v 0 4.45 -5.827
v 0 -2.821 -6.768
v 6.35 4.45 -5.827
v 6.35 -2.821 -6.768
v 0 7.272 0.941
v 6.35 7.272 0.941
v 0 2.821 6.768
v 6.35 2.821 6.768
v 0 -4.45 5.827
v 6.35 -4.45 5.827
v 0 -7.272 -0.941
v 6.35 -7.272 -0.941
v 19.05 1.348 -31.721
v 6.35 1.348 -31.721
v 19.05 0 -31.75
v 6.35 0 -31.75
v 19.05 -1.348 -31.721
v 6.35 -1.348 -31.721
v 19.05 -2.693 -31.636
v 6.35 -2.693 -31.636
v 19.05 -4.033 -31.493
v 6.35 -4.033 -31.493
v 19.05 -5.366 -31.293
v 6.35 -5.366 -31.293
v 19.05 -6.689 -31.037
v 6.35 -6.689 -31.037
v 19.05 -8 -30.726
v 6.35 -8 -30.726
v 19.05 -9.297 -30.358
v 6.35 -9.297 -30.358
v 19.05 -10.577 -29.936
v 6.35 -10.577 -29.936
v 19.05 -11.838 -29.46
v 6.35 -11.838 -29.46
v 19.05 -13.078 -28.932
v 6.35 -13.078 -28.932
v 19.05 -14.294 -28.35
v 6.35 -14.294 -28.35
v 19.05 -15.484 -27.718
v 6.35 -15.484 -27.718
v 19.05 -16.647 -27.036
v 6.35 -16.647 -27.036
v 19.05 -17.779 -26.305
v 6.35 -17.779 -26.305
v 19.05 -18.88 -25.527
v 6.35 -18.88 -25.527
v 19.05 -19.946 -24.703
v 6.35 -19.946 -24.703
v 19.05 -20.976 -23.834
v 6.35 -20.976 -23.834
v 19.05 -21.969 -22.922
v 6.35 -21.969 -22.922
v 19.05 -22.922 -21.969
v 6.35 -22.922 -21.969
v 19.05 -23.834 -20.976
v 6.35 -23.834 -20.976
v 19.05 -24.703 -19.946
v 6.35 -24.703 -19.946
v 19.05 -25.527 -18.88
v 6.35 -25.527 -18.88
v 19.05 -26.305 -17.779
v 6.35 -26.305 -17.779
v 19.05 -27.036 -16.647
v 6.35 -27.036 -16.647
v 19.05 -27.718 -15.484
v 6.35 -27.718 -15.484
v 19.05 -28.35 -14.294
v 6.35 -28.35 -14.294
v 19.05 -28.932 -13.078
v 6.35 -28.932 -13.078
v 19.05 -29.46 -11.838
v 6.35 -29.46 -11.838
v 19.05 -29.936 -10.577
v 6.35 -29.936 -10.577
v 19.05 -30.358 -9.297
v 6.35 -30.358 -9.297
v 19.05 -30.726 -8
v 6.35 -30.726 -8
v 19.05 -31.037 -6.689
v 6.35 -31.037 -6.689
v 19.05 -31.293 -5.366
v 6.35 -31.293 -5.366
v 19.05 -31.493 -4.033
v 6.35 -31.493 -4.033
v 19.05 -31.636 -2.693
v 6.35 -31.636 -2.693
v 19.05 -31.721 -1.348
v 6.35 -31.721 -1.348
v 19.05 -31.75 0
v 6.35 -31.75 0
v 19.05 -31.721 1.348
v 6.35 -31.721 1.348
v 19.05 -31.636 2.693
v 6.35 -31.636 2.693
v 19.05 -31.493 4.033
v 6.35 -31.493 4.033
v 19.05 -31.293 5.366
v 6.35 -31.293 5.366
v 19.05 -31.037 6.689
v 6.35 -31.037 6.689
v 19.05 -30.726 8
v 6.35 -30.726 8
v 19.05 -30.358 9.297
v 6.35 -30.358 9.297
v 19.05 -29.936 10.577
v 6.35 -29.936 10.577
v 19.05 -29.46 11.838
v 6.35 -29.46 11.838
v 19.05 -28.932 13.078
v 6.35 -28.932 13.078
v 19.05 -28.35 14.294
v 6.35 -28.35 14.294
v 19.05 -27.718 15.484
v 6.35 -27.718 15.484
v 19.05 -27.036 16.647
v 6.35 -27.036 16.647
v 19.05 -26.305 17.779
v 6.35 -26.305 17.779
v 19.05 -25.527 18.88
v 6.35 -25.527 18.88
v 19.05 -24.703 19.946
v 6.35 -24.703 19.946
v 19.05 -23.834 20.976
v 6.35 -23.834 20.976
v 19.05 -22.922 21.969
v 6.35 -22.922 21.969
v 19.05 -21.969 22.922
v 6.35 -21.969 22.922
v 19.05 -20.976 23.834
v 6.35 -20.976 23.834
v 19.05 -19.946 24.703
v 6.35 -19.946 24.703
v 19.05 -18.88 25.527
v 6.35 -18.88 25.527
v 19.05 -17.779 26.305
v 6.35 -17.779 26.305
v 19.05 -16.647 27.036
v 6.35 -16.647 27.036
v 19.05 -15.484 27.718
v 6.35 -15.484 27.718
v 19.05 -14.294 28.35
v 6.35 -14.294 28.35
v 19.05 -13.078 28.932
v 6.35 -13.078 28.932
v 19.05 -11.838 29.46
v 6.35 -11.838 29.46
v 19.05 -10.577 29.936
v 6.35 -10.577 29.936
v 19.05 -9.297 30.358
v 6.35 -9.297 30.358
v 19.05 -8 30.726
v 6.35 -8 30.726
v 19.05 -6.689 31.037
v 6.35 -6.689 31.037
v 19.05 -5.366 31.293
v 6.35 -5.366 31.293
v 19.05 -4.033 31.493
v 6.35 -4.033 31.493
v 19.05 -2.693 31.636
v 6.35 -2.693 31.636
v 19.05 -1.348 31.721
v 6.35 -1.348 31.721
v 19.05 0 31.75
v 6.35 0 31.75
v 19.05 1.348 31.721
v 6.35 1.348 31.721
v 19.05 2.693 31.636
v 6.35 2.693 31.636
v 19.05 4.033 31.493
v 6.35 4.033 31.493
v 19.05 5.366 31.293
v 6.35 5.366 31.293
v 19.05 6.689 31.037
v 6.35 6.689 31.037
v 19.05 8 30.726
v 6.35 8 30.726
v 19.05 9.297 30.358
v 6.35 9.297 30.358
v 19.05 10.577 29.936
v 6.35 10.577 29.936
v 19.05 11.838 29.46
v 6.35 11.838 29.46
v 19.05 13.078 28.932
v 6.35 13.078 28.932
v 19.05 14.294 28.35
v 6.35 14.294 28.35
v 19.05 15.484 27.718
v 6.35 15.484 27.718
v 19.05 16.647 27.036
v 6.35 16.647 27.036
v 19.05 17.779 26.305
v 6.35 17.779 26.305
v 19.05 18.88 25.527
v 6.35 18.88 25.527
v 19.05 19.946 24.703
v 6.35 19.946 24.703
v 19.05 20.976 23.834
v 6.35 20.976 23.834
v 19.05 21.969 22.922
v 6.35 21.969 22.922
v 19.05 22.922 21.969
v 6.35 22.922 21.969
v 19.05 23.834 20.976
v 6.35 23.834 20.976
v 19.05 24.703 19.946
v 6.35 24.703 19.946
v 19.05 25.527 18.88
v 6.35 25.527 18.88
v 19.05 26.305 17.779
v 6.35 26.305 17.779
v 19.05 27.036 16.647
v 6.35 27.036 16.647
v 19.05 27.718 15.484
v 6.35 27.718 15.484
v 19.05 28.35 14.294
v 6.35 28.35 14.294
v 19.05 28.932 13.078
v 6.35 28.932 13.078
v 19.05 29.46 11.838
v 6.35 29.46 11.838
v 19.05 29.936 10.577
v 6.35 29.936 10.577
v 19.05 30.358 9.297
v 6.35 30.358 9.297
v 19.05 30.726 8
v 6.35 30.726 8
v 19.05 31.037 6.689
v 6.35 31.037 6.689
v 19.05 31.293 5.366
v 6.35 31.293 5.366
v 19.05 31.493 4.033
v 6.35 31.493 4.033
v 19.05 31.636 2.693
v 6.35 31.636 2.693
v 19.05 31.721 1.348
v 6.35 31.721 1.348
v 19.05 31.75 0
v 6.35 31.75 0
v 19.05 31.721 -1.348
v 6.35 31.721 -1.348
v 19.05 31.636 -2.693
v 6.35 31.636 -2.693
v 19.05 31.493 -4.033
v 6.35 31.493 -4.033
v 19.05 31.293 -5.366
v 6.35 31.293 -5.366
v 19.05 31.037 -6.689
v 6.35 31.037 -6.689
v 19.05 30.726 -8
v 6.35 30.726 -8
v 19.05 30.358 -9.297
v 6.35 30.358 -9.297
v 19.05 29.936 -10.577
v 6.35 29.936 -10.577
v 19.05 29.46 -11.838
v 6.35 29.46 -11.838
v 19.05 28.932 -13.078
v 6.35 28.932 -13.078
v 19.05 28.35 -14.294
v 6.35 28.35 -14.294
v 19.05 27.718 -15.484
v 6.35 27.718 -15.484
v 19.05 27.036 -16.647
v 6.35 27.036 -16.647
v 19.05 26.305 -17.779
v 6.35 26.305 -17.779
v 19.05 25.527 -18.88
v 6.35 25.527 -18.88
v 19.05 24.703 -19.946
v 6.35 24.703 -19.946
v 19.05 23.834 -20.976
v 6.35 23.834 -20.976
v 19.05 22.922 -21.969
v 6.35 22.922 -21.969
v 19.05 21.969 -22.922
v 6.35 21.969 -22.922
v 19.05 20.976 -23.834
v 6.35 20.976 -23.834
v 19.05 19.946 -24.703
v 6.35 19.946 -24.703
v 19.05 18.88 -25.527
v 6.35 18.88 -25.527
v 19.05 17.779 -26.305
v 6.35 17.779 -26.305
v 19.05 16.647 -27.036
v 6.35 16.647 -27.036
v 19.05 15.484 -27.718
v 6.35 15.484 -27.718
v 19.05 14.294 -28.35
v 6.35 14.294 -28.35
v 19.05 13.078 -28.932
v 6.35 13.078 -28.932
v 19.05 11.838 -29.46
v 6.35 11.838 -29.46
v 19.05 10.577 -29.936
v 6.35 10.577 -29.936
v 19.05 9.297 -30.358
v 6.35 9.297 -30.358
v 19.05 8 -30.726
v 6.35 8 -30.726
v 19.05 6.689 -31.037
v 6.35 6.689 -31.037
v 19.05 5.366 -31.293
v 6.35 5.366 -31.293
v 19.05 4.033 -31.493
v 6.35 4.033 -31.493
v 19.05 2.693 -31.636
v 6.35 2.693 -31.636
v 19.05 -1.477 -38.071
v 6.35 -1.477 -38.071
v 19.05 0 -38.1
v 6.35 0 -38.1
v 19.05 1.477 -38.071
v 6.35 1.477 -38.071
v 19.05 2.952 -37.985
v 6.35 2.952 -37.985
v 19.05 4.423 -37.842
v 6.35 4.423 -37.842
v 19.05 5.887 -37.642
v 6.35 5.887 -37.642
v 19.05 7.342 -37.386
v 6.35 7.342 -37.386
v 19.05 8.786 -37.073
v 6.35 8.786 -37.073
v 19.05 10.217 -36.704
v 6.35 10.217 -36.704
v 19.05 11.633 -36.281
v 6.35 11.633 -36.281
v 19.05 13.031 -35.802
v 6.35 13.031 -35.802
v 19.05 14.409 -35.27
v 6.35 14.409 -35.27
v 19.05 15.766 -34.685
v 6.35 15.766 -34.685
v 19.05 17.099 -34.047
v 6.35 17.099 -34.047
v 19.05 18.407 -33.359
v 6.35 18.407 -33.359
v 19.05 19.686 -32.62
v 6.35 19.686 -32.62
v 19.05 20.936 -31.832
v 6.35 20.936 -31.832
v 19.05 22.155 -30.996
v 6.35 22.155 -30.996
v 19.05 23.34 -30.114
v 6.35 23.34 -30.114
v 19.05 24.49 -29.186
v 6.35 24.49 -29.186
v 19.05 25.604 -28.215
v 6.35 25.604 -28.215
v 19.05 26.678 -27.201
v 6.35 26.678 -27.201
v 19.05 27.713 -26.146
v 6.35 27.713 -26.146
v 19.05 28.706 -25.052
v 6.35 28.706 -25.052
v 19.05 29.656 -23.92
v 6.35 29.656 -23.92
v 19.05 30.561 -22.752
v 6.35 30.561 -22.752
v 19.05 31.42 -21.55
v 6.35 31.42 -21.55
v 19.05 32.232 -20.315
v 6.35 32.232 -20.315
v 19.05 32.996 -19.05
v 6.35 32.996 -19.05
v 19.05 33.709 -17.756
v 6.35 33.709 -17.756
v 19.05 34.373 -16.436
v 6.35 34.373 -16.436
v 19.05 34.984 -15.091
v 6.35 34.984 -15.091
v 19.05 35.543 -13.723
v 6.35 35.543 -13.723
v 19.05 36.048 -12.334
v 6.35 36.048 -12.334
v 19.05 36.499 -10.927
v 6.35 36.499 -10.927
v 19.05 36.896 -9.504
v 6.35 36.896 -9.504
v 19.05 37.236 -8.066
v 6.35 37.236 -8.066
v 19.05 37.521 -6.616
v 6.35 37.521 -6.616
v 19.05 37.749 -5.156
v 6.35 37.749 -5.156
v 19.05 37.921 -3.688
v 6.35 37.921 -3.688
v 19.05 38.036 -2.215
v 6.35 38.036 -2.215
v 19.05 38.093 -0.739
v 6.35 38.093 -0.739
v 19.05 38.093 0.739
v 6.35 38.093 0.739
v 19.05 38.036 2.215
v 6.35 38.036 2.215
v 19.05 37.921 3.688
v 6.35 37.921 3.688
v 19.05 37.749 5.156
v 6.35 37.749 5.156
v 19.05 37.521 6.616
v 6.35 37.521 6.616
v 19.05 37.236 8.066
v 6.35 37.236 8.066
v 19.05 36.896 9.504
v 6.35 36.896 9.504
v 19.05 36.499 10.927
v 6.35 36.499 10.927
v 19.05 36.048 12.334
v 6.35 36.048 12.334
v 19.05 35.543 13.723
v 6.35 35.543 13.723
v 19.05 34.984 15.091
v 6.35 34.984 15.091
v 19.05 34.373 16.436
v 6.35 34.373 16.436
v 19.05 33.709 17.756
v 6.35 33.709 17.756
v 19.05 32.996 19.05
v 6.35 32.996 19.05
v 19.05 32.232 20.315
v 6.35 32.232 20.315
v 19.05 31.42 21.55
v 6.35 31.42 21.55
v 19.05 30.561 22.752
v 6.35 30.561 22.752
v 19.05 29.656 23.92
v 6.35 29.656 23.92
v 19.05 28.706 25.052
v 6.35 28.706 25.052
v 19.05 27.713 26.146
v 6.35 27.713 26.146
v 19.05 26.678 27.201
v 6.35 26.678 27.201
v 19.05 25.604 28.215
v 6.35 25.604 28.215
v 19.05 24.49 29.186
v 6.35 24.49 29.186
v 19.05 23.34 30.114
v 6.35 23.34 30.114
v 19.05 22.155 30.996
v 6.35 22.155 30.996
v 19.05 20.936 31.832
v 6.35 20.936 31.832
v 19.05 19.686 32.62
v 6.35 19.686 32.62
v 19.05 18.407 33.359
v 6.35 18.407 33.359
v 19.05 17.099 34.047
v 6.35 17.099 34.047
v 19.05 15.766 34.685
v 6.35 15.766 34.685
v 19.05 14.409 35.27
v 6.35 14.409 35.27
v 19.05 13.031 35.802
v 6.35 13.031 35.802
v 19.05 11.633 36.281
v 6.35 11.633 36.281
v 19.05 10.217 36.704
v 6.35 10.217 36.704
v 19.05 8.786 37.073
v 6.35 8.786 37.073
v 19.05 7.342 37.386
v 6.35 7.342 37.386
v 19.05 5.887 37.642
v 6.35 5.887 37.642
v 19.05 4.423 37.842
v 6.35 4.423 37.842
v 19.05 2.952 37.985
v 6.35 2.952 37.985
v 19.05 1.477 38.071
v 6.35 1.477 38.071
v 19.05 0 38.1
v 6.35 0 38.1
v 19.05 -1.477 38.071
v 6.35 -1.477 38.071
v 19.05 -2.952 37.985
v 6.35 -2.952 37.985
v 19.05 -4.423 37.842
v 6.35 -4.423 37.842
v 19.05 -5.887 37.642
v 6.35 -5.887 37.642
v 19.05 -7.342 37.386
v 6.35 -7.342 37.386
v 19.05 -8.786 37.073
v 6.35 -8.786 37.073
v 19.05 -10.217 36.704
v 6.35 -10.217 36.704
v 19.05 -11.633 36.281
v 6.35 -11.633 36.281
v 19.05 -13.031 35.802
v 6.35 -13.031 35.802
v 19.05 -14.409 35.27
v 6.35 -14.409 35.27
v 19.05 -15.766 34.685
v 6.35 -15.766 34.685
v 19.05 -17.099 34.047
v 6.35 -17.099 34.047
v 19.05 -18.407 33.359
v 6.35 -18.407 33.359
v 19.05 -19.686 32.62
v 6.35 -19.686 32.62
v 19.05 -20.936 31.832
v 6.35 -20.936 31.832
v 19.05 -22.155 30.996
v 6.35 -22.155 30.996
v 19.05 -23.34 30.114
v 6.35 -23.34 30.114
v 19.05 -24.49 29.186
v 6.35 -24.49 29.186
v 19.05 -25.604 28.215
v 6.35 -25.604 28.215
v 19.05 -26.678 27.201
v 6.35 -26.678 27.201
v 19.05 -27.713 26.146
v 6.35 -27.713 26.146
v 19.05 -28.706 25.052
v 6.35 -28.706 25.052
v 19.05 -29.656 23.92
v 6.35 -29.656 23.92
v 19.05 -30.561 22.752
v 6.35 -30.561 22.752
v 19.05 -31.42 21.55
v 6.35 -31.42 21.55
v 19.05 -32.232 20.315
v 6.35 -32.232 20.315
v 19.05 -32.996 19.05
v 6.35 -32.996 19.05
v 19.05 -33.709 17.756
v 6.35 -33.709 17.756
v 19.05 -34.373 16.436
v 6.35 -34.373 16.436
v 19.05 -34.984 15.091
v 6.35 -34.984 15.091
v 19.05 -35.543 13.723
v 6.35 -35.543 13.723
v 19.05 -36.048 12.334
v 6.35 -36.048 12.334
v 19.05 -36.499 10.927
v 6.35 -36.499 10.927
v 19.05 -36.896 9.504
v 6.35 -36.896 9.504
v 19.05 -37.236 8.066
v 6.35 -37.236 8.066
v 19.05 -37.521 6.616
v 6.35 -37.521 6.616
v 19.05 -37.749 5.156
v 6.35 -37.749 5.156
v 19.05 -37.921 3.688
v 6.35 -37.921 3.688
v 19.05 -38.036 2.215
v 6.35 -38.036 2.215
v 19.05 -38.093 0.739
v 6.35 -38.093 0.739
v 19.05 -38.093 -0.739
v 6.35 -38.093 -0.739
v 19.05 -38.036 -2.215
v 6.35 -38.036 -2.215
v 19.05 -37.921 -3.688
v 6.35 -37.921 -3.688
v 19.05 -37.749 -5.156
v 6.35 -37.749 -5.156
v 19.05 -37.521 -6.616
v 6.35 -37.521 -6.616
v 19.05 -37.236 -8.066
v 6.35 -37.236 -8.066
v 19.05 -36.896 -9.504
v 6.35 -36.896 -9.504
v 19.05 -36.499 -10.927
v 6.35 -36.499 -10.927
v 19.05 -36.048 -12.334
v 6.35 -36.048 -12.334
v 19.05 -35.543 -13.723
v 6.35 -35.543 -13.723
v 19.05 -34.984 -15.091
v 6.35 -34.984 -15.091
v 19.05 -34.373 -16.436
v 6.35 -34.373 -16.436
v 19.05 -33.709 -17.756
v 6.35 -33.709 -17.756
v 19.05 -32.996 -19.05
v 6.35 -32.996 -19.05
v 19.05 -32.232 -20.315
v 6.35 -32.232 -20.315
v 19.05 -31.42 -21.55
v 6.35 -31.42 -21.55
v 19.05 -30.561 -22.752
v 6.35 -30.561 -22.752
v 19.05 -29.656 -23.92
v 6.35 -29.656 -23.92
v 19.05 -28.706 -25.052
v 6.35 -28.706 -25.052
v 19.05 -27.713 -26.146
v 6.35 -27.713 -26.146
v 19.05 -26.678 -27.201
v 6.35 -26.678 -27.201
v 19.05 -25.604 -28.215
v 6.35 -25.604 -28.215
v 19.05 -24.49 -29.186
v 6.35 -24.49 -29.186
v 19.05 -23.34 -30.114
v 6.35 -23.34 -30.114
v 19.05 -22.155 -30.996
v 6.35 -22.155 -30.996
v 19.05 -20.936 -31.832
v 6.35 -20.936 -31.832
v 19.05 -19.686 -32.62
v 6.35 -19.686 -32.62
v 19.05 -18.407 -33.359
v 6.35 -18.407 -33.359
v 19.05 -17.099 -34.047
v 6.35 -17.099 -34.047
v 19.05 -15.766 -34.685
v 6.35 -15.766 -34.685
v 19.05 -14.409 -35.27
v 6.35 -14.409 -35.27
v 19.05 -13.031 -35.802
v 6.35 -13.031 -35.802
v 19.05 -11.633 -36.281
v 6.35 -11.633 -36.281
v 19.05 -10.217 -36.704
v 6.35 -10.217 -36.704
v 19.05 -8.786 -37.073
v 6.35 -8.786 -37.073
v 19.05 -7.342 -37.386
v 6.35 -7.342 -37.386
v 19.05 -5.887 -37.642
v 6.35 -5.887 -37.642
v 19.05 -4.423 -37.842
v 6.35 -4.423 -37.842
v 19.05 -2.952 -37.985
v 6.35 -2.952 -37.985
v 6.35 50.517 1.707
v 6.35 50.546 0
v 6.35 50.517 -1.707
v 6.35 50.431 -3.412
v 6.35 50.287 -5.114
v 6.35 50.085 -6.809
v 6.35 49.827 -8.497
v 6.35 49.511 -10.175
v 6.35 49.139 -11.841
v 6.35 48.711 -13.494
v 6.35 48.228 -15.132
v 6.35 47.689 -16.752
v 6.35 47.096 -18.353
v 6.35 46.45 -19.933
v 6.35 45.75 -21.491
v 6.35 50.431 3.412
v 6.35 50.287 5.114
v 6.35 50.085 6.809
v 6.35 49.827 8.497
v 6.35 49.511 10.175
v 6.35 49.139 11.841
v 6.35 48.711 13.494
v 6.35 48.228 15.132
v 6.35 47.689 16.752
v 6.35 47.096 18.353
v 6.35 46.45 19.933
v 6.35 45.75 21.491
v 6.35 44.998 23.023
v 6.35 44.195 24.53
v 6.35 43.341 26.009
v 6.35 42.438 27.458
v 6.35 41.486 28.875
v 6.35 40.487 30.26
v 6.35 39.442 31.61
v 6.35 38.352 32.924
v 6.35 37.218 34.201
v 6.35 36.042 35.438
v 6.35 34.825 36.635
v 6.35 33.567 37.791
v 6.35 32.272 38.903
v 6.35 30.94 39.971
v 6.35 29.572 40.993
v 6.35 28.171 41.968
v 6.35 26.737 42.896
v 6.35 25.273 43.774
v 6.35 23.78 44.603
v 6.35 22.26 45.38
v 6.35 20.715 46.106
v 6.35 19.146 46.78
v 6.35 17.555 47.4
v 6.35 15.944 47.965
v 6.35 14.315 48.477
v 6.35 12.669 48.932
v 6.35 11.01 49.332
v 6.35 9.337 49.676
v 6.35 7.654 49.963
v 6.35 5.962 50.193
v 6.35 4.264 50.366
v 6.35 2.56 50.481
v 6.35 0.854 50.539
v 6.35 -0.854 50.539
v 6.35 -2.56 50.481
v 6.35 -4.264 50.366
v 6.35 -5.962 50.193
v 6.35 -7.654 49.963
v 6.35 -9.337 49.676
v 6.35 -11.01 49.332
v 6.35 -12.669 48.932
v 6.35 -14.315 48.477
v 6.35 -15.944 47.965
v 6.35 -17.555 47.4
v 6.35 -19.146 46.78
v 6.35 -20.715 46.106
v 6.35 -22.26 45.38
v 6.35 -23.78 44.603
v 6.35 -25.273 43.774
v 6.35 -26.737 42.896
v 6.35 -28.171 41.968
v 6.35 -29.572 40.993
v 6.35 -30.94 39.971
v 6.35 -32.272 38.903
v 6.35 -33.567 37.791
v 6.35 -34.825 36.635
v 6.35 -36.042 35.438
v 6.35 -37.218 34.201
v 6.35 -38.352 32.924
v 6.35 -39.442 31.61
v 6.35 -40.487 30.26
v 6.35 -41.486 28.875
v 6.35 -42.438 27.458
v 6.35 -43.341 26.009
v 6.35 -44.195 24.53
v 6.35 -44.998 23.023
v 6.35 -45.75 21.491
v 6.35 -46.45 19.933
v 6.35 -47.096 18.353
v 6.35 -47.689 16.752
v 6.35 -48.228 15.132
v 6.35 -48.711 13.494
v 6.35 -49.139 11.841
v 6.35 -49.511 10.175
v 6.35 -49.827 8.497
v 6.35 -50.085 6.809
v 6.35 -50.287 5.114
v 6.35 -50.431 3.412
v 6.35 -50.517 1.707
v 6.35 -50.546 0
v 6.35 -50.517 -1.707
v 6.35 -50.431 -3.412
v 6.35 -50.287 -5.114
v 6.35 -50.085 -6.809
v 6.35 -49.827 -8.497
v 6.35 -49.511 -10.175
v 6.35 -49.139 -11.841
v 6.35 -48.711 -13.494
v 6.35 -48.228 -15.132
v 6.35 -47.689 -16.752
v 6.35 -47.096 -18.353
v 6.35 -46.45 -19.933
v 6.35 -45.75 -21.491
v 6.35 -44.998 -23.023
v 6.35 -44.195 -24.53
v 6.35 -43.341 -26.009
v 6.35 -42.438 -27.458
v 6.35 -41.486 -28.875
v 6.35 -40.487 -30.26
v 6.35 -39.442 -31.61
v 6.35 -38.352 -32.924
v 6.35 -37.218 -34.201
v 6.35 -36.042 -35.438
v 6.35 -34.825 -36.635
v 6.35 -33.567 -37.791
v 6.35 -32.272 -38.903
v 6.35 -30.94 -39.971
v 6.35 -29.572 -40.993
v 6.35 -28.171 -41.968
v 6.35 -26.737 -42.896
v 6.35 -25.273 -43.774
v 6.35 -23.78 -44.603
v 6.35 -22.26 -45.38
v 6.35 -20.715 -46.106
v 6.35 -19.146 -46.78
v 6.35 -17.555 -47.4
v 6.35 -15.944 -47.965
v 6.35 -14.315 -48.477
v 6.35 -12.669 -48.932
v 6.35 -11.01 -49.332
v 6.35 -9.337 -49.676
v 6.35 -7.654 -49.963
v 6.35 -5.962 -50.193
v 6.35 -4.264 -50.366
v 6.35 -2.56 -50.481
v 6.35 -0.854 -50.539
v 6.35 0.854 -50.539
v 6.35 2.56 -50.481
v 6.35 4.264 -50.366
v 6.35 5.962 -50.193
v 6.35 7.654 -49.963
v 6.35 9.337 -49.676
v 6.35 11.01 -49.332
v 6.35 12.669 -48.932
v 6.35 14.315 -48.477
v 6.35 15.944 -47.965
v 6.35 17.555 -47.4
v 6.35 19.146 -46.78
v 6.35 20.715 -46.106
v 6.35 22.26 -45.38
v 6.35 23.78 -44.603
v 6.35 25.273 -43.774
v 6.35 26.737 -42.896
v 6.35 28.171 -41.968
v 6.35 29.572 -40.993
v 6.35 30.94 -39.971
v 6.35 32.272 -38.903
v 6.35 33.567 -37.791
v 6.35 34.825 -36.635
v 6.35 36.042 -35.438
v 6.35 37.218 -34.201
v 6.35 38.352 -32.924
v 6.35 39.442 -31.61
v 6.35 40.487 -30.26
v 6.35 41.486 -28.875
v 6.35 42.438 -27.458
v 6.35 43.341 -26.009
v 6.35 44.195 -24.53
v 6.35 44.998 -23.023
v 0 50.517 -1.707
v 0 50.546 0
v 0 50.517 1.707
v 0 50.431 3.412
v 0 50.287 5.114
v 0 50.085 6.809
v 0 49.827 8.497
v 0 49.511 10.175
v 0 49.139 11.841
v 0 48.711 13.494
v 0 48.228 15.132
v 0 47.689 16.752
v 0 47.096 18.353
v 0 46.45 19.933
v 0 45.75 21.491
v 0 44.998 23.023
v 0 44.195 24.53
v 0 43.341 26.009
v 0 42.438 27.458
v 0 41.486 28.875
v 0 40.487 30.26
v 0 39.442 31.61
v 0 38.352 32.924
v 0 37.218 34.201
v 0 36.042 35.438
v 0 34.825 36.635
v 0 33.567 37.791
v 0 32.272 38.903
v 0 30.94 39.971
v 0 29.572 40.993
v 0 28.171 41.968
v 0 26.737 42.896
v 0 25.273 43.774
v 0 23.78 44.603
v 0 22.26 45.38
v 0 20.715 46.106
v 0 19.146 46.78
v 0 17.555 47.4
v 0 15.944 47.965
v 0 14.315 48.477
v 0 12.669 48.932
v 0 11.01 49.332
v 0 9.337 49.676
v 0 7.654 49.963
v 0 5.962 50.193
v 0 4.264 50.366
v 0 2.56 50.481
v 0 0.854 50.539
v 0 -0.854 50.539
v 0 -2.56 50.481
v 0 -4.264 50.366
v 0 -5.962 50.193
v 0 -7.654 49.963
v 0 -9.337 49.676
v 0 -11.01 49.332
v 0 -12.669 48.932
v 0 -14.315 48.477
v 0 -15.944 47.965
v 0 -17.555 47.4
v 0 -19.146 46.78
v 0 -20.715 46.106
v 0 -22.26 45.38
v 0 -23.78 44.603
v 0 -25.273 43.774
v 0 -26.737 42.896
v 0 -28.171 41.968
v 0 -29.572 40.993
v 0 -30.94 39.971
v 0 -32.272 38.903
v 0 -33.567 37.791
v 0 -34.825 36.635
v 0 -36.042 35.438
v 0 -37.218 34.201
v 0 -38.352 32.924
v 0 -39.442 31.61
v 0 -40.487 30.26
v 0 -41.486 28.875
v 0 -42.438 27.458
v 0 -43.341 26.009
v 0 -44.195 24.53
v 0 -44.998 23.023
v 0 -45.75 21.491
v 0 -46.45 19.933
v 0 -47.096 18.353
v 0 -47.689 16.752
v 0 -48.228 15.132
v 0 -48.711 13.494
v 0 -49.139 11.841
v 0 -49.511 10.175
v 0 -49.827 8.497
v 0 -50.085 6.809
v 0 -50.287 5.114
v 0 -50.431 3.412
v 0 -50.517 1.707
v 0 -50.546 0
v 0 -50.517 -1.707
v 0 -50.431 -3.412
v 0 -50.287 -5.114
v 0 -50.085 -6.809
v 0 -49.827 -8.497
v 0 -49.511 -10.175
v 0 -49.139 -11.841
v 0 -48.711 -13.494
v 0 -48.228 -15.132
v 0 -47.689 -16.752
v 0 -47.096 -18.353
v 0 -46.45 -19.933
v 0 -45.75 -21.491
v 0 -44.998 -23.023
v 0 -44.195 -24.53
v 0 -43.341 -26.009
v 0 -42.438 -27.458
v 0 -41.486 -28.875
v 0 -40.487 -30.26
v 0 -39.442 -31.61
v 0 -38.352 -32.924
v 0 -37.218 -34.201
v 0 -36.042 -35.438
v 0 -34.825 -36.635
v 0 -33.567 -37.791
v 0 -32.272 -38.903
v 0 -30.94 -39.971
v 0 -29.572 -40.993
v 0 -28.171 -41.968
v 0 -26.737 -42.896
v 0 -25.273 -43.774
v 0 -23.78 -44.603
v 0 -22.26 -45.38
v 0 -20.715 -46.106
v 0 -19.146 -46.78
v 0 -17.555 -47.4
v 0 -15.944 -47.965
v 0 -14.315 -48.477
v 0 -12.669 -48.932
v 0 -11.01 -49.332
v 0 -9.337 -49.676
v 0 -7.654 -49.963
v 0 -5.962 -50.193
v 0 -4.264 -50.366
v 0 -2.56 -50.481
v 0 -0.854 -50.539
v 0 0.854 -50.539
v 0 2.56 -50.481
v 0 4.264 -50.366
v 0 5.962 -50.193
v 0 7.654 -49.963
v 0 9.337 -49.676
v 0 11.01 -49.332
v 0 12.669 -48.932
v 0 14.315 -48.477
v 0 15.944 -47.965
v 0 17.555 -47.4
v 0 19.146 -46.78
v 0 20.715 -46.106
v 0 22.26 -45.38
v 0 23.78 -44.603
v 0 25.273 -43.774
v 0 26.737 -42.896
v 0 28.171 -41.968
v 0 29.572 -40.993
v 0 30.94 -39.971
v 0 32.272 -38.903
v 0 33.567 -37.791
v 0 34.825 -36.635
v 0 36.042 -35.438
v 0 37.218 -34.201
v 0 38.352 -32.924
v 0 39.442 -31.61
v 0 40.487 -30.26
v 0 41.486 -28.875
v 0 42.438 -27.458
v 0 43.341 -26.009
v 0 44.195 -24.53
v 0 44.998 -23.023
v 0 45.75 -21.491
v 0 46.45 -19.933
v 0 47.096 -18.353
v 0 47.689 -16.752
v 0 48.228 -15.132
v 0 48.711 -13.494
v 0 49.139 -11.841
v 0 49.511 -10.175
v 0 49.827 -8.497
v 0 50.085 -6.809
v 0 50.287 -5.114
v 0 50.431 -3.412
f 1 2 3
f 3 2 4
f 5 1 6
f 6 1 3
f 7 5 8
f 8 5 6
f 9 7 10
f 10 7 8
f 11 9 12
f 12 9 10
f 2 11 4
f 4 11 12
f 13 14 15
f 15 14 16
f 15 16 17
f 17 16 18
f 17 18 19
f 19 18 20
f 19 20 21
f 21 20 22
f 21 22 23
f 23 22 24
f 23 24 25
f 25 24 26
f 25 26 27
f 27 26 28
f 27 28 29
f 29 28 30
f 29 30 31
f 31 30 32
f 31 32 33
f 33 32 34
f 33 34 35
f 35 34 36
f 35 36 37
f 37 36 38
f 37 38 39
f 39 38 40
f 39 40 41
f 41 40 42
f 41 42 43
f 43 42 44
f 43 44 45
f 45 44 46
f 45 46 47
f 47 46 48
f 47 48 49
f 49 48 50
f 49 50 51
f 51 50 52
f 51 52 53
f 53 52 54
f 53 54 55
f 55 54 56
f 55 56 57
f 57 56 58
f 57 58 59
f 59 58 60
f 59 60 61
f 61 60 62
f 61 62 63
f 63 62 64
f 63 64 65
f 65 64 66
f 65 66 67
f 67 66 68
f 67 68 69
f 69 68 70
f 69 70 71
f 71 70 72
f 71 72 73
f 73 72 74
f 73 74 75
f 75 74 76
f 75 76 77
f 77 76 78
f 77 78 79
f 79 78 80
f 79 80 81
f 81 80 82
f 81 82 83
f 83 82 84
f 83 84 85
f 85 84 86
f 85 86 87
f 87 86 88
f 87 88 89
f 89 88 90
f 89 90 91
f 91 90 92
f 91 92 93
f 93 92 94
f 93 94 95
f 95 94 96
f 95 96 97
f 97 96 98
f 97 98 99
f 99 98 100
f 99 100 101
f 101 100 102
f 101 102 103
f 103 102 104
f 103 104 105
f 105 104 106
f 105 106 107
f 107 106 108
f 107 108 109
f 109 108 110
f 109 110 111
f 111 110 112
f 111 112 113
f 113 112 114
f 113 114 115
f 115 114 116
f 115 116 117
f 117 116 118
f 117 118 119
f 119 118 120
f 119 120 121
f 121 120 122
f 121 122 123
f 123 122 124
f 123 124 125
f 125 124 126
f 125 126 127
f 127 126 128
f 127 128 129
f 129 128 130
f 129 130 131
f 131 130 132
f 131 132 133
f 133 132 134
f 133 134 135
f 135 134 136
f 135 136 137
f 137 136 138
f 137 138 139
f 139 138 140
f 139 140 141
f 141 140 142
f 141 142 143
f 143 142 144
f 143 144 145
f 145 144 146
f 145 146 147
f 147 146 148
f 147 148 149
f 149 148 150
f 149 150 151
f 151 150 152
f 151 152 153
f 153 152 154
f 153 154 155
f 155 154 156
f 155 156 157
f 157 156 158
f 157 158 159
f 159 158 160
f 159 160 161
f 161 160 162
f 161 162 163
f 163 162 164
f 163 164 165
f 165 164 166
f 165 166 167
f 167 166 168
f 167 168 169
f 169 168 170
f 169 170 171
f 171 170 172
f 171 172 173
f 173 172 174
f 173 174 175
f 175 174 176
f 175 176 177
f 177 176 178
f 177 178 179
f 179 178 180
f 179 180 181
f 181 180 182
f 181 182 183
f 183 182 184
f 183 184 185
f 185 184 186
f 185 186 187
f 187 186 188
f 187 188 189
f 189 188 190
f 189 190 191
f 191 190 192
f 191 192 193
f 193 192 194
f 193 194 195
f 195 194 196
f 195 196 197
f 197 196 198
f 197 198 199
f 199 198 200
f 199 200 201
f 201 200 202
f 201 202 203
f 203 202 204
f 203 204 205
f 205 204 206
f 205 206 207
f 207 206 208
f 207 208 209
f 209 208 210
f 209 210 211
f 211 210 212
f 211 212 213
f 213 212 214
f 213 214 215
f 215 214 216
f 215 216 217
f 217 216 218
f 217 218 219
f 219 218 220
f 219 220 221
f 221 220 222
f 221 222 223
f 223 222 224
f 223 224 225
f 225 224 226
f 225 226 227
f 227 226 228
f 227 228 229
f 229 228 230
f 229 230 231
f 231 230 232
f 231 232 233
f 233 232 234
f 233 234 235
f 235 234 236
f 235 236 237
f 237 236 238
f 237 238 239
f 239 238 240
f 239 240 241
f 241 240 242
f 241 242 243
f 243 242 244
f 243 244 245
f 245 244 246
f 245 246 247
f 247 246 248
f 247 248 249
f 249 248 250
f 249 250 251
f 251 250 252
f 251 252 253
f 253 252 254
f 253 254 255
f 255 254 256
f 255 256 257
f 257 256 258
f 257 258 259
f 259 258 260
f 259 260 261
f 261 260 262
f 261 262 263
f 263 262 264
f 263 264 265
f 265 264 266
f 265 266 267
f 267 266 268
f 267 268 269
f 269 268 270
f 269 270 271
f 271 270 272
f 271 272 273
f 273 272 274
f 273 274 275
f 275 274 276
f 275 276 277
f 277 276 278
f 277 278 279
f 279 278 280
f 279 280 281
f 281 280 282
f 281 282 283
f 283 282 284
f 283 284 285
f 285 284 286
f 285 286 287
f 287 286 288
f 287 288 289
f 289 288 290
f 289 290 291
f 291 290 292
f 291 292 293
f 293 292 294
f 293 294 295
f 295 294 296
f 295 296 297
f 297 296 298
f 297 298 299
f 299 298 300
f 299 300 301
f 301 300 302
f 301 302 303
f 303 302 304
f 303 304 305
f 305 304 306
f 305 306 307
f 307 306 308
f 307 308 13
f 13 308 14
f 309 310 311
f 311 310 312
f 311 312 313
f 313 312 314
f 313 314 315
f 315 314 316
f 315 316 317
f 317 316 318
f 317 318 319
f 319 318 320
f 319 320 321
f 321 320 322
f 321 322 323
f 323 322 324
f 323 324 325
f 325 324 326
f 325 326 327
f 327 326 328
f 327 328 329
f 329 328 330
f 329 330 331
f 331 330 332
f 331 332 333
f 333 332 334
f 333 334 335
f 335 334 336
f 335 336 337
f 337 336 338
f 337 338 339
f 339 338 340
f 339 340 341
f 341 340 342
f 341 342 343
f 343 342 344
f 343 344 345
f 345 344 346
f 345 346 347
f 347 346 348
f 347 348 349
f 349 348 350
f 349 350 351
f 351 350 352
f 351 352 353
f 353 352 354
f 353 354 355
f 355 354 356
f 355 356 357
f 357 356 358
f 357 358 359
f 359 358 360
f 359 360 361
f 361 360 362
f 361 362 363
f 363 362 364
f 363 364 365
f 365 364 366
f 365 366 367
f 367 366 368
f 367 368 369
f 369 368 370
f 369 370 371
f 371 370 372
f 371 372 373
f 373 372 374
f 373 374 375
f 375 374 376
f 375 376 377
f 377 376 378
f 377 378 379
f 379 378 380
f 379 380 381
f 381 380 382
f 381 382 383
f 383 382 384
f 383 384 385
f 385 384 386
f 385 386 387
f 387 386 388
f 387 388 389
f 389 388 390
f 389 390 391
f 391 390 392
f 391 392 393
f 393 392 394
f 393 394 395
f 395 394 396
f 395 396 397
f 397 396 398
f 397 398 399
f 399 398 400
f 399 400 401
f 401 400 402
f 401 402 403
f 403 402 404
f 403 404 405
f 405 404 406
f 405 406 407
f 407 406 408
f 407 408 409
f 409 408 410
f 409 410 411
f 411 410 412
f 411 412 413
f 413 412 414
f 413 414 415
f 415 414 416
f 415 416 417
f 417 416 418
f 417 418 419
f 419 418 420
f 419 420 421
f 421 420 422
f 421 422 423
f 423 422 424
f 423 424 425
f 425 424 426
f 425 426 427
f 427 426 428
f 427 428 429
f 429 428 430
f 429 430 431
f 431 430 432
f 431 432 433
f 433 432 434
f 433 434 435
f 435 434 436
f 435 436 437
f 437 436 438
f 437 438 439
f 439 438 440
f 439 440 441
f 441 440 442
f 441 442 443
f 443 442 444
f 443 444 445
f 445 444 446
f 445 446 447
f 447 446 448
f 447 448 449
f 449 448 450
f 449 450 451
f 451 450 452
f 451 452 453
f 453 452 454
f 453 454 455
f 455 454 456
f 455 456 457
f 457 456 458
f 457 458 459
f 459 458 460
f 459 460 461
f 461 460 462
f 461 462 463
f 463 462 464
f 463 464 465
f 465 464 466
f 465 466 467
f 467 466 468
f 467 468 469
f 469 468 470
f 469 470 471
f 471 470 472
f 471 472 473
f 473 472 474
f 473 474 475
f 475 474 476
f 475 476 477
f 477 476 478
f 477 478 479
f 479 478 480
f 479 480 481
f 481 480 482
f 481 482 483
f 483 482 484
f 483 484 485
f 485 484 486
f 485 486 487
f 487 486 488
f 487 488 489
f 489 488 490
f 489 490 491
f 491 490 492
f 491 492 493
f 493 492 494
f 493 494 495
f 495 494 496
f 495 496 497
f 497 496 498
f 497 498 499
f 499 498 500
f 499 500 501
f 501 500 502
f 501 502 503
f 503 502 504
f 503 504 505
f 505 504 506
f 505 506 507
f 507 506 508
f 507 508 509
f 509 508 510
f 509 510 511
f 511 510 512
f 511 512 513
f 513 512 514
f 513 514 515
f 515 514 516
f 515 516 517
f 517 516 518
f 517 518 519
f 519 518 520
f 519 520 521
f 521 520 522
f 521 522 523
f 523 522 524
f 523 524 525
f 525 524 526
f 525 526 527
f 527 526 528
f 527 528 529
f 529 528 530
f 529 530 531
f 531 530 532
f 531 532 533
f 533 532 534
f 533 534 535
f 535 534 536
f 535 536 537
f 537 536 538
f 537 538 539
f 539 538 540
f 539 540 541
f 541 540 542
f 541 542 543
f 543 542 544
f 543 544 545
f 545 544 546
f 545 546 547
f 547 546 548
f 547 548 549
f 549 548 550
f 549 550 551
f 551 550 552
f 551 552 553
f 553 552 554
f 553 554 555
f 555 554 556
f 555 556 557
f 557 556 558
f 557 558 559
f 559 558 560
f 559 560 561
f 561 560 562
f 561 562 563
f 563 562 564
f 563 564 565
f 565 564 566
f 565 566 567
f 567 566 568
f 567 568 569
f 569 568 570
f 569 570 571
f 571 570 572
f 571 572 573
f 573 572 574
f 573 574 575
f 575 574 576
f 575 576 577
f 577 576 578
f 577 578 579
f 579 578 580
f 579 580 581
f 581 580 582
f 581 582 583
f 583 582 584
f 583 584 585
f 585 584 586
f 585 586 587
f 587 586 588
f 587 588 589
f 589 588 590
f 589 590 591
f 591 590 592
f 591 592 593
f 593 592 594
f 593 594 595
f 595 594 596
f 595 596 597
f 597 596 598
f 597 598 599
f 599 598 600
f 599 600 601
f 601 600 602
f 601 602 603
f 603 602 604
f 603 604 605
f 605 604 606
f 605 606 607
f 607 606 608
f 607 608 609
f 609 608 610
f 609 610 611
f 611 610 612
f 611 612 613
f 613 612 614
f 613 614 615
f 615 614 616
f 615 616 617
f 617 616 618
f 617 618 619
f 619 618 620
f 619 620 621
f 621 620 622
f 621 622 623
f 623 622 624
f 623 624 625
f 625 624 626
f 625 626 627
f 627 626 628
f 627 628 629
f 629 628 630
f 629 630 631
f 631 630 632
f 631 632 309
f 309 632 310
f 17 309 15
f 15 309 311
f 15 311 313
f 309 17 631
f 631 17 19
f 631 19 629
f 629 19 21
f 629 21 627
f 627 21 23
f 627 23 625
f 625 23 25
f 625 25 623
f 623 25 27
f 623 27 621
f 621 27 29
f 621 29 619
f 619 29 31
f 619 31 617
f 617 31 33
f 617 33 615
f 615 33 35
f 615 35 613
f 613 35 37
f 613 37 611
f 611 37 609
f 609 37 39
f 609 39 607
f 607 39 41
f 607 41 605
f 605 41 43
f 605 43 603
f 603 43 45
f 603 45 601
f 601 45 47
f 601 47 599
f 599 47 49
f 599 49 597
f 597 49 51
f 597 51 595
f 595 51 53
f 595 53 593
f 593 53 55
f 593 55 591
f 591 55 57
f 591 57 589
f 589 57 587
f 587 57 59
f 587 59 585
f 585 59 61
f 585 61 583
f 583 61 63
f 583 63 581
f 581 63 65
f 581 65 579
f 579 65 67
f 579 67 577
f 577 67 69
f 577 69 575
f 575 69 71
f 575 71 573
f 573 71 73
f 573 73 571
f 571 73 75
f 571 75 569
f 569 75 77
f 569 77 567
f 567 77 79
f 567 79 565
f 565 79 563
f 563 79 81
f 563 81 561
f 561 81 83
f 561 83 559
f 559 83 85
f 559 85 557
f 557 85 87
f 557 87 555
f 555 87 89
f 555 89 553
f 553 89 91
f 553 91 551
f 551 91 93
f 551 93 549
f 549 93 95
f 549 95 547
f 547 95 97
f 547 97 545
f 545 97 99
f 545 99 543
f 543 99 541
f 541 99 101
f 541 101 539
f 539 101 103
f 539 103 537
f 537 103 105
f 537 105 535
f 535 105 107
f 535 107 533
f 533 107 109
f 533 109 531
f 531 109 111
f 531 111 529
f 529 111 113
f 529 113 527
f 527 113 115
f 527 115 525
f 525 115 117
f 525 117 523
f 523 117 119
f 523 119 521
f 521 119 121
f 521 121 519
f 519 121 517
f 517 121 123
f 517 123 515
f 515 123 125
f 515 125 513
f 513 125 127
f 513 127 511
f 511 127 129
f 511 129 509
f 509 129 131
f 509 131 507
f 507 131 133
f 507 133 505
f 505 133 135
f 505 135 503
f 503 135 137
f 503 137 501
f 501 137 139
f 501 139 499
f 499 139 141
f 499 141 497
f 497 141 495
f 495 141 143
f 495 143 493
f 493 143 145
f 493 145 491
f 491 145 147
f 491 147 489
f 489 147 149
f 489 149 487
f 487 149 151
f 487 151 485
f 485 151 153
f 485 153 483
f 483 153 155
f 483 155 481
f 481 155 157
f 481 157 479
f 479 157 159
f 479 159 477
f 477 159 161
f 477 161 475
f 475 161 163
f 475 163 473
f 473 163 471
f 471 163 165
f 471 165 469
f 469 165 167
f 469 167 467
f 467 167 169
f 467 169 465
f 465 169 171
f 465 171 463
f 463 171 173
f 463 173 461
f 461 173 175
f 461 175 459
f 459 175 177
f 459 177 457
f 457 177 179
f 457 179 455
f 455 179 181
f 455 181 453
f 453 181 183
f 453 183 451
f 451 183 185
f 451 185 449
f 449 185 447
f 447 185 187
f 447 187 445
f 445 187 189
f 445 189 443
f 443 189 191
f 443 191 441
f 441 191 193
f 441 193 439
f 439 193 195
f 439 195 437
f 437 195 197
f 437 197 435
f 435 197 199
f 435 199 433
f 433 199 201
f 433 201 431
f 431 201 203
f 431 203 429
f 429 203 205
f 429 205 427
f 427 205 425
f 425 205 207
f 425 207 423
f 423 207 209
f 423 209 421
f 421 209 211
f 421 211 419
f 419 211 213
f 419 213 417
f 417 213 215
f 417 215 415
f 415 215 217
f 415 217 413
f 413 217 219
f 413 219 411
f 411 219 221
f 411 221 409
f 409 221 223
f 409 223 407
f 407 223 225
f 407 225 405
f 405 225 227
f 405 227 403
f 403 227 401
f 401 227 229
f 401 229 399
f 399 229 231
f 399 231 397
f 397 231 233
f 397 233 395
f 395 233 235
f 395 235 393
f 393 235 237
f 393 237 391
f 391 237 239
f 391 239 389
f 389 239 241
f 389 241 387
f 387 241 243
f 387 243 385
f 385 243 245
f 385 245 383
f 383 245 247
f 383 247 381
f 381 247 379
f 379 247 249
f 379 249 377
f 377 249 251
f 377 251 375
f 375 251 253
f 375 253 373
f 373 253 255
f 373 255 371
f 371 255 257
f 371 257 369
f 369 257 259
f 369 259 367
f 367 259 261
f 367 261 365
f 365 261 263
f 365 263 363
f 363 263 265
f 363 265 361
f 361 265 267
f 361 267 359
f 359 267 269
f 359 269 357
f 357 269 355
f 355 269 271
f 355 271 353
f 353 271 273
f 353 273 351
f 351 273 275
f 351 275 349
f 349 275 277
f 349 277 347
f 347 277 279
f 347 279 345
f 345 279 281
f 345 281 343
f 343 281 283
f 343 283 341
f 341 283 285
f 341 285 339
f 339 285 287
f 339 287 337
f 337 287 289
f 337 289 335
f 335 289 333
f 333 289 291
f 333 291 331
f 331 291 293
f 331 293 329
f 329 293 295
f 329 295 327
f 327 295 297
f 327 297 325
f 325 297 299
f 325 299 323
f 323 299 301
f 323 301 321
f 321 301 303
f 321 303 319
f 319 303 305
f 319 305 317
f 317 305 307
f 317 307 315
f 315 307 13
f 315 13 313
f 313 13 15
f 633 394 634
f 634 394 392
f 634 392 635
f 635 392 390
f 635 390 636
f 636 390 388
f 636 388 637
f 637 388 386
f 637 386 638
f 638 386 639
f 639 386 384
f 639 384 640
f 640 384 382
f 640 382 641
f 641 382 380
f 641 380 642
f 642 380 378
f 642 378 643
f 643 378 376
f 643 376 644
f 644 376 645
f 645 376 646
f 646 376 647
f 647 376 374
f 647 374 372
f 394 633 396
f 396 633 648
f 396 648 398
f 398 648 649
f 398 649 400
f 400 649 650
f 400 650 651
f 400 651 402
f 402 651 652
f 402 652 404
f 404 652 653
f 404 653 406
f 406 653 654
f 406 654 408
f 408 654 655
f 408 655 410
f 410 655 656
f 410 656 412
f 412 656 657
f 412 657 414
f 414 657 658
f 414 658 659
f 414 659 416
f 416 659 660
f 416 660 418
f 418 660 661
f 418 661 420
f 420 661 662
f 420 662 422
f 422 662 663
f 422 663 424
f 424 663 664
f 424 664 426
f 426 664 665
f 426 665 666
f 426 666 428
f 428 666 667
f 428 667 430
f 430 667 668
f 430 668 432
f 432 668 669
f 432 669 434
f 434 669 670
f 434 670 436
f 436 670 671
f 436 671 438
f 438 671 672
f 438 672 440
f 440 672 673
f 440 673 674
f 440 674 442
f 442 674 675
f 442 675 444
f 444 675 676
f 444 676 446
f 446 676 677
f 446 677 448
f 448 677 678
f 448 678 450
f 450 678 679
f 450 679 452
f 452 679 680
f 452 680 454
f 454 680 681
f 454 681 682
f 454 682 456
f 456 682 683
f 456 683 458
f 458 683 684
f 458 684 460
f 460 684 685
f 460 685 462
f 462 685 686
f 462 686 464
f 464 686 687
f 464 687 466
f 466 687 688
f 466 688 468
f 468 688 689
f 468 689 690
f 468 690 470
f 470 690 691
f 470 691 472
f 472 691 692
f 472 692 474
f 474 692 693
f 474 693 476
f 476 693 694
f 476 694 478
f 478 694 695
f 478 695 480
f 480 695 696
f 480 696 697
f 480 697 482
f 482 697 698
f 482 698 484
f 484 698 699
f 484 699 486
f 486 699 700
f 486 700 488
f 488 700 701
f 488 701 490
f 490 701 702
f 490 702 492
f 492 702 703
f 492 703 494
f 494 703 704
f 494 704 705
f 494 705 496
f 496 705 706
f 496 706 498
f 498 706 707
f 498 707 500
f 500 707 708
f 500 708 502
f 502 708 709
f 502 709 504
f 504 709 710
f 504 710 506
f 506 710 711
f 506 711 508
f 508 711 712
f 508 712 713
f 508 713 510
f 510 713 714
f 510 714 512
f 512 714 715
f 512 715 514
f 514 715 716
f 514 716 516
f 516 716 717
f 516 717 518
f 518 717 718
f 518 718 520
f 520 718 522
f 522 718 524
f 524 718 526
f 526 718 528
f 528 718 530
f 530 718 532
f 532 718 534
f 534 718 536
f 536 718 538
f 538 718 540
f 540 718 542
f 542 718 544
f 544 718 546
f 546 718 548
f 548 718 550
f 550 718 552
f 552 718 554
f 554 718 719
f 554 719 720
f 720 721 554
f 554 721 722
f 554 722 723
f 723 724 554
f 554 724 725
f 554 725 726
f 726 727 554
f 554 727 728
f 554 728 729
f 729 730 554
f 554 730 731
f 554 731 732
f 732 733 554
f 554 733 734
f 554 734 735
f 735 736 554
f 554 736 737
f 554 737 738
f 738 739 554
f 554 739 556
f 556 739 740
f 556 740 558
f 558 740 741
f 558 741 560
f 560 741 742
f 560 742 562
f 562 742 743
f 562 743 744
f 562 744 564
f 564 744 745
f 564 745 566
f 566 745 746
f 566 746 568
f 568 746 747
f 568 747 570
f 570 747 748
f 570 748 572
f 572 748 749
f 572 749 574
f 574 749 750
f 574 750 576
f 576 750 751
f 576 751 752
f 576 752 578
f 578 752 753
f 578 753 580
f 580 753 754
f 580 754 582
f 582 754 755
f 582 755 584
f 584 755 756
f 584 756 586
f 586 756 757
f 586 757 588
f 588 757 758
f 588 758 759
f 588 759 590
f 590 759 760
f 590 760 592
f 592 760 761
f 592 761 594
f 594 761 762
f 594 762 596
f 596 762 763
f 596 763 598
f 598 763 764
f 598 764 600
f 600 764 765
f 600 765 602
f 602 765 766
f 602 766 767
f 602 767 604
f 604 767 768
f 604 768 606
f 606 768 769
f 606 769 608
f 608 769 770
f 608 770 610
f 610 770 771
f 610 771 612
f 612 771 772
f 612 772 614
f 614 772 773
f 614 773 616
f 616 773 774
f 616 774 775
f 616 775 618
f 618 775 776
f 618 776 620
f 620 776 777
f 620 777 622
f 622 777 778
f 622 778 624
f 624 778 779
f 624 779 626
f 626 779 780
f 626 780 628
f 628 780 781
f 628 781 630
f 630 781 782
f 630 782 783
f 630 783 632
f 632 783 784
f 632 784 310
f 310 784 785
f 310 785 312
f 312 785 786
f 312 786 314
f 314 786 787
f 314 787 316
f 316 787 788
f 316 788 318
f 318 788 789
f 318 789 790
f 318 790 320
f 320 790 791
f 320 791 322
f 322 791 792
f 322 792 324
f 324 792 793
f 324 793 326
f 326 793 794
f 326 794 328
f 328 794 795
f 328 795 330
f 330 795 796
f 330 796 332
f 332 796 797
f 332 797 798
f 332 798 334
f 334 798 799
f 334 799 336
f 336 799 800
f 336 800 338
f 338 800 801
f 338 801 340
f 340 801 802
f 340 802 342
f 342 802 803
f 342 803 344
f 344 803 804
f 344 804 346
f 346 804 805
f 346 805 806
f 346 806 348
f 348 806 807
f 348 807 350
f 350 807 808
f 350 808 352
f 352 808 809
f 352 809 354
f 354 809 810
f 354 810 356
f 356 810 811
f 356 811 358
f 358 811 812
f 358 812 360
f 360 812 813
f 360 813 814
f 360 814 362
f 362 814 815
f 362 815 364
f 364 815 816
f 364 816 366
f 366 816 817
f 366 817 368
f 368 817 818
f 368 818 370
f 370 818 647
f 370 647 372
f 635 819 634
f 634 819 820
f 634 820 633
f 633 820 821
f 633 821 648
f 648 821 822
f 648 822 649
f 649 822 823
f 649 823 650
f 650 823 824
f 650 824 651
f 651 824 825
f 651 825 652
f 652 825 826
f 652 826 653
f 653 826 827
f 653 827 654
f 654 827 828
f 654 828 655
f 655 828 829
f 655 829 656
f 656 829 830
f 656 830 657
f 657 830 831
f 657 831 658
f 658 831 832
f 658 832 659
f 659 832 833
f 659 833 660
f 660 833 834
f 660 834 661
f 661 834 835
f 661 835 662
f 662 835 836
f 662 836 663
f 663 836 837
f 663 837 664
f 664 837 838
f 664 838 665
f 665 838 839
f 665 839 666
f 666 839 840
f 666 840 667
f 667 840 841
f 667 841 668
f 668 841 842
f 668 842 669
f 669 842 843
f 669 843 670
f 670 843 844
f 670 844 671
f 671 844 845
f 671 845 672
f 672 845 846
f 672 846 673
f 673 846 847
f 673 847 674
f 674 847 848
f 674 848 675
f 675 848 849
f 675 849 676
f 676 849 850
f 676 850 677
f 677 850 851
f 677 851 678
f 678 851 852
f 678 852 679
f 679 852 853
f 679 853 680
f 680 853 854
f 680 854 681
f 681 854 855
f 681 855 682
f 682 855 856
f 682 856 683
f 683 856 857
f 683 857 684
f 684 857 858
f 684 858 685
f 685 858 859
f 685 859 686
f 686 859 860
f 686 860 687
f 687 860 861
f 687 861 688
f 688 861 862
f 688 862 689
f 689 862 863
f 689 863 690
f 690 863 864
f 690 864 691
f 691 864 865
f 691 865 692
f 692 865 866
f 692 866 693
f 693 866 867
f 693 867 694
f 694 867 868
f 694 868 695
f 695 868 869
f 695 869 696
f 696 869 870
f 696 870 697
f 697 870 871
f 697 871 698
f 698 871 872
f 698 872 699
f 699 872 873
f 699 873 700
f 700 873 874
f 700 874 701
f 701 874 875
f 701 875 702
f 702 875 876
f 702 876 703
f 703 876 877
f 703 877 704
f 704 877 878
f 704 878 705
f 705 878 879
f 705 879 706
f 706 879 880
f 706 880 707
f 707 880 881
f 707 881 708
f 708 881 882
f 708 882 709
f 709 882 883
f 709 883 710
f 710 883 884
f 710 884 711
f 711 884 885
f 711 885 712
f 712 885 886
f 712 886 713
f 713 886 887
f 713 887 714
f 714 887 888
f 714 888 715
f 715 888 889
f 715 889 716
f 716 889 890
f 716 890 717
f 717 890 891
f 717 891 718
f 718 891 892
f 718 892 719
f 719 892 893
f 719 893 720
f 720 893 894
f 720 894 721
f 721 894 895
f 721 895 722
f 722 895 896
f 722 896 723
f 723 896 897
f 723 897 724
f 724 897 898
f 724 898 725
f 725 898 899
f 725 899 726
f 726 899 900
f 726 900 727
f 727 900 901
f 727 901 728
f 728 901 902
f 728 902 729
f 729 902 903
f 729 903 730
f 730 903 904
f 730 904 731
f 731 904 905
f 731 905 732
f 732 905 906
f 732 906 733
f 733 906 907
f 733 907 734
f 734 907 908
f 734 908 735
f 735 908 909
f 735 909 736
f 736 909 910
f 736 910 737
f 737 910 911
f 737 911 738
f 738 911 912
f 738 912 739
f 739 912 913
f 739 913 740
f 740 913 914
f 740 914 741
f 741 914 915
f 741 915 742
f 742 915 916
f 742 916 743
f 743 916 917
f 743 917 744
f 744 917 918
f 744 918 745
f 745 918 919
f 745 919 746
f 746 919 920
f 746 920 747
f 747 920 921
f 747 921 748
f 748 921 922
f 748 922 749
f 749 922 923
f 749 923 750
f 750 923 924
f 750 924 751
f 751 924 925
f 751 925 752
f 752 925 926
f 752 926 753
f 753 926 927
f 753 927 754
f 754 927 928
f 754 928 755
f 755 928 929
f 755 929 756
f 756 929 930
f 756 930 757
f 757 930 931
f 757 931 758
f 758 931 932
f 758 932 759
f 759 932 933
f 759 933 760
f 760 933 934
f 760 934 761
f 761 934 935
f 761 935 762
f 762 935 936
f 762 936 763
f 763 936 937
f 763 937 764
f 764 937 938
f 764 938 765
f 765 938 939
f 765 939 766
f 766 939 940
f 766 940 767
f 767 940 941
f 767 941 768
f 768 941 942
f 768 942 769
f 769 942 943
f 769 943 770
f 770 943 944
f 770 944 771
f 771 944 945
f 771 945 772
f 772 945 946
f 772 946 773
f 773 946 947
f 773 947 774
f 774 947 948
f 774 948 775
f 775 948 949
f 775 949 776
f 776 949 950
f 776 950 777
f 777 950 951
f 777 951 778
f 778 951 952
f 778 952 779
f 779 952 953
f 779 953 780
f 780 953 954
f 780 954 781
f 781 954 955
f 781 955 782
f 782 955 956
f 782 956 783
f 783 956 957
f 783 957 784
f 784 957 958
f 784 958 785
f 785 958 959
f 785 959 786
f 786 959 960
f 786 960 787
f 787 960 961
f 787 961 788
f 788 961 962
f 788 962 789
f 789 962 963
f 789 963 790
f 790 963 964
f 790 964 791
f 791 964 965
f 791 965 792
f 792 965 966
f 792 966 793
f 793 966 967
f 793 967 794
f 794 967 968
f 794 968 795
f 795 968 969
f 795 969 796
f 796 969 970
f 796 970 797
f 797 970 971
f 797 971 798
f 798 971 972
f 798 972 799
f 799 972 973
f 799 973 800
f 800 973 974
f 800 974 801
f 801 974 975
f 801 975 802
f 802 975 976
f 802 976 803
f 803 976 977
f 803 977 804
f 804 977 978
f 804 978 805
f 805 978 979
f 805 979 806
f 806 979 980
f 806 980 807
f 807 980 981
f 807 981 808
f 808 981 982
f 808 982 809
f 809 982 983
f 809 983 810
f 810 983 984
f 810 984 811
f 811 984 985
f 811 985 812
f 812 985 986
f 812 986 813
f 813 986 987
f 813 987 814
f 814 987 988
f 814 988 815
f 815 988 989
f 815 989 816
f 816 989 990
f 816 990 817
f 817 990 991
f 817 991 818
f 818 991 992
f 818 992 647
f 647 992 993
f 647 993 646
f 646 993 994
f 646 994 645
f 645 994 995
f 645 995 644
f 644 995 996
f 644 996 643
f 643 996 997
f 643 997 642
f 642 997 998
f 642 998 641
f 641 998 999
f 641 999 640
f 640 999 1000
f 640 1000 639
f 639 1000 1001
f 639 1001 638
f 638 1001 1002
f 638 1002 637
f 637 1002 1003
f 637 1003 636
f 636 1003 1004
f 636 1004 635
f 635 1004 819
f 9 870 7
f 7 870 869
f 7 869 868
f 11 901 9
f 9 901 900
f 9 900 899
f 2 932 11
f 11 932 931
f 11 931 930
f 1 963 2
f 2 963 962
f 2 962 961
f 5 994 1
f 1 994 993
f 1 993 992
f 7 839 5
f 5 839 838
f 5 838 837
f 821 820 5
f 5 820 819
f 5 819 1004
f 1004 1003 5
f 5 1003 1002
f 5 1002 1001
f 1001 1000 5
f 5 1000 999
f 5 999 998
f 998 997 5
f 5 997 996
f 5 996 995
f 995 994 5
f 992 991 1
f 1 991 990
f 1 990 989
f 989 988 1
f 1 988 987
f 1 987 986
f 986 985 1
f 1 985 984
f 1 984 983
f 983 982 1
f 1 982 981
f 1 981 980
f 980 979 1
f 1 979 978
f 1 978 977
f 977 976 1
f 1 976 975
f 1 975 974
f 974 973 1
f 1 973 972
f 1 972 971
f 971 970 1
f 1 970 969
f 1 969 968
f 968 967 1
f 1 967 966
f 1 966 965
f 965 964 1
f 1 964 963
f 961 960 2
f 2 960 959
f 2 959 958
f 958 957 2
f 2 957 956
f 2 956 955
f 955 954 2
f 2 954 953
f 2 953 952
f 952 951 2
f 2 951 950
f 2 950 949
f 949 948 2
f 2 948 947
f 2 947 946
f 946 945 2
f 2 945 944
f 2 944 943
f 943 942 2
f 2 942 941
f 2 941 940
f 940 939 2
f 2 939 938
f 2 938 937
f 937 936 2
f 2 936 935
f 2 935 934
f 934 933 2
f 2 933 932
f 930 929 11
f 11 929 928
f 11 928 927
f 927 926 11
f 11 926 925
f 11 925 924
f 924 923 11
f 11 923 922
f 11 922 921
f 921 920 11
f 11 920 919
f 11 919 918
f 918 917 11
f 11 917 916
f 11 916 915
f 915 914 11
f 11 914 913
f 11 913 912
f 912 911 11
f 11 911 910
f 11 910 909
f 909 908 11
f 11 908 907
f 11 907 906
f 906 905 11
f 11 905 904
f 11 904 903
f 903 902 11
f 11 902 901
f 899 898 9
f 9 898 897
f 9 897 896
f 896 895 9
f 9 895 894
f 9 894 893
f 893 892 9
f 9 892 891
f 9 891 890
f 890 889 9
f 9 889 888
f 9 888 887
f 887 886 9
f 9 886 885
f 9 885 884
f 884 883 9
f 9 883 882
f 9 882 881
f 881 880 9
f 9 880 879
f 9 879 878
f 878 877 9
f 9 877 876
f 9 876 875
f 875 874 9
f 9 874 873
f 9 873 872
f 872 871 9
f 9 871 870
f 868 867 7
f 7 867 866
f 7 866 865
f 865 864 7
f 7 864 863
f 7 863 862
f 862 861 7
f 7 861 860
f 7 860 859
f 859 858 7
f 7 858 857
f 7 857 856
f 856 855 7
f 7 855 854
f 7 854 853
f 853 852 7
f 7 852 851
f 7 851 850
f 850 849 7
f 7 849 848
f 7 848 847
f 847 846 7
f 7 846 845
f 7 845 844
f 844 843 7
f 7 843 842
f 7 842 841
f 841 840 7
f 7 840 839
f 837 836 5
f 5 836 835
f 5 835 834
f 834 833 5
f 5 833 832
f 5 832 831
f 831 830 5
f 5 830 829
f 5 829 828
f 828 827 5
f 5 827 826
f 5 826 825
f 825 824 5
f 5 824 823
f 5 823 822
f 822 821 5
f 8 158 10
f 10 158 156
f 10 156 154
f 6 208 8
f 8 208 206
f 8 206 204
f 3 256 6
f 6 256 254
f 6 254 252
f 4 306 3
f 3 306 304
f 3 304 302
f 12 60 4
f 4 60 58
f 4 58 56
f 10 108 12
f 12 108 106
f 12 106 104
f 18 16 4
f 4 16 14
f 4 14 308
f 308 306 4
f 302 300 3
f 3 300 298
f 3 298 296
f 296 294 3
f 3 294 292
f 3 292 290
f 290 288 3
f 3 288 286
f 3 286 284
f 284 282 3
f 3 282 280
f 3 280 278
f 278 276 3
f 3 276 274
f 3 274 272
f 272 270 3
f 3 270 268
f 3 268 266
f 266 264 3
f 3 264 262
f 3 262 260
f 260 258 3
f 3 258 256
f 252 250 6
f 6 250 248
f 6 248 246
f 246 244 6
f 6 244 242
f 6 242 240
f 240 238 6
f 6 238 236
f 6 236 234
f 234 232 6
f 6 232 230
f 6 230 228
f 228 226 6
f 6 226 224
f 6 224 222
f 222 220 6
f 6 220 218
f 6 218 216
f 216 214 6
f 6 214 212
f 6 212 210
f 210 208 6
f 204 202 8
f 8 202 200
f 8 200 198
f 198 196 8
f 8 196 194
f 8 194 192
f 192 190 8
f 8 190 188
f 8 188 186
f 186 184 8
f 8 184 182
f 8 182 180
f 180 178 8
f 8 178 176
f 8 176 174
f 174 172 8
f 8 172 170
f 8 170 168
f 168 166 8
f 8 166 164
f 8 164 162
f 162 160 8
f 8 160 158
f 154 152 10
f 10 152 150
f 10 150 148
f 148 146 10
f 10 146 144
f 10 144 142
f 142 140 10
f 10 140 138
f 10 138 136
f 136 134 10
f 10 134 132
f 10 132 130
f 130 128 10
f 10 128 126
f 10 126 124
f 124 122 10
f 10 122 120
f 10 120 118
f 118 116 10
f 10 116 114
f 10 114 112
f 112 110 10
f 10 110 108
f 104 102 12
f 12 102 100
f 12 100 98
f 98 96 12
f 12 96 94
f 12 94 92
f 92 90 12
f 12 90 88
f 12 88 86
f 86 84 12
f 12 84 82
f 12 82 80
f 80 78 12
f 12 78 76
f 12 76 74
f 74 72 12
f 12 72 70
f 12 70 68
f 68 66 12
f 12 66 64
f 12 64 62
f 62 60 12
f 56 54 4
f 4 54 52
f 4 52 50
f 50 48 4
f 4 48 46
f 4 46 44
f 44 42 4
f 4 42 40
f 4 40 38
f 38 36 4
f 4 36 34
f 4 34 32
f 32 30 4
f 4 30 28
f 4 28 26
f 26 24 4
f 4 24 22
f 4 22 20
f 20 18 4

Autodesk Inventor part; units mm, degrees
ref_plane "YZ Plane" through (0, 0, 0) normal (1, 0, 0) x (0, 1, 0)
ref_plane "XZ Plane" through (0, 0, 0) normal (0, 1, 0) x (-1, 0, 0)
ref_plane "XY Plane" through (0, 0, 0) normal (0, 0, 1) x (1, 0, 0)
sketch "Sketch1" plane through (0, 0, 0) normal (1, 0, 0) x (0, 1, 0)
  circle A0 centre (0, 0) radius 50.546
  dimension "d0" = 101.092
extrude "Extrusion1" add sketch "Sketch1" along normal blind 6.35
sketch "Sketch2" plane through (6.35, 0, 0) normal (1, 0, 0) x (0, 0, -1)
  circle A0 centre (0, 0) radius 38.1
  circle A1 centre (0, 0) radius 31.75
  dimension "d3" = 76.2
  dimension "d4" = 6.35
extrude "Extrusion2" add sketch "Sketch2" along normal blind 12.7
sketch "Sketch3" plane through (6.35, 0, 0) normal (1, 0, 0) x (0, 0, -1)
  line L0 (-6.7678, 2.8213) -> (-0.9406, 7.2718)
  line L1 (-0.9406, 7.2718) -> (5.8273, 4.4504)
  line L2 (5.8273, 4.4504) -> (6.7678, -2.8213)
  line L3 (6.7678, -2.8213) -> (0.9406, -7.2718)
  line L4 (0.9406, -7.2718) -> (-5.8273, -4.4504)
  line L5 (-5.8273, -4.4504) -> (-6.7678, 2.8213)
  point P0 (0, 0)
  point P1 (0, 0)
  dimension "d7" = 12.7
extrude "Extrusion3" cut sketch "Sketch3" against normal blind 12.7
properties part number "wheel hub"
